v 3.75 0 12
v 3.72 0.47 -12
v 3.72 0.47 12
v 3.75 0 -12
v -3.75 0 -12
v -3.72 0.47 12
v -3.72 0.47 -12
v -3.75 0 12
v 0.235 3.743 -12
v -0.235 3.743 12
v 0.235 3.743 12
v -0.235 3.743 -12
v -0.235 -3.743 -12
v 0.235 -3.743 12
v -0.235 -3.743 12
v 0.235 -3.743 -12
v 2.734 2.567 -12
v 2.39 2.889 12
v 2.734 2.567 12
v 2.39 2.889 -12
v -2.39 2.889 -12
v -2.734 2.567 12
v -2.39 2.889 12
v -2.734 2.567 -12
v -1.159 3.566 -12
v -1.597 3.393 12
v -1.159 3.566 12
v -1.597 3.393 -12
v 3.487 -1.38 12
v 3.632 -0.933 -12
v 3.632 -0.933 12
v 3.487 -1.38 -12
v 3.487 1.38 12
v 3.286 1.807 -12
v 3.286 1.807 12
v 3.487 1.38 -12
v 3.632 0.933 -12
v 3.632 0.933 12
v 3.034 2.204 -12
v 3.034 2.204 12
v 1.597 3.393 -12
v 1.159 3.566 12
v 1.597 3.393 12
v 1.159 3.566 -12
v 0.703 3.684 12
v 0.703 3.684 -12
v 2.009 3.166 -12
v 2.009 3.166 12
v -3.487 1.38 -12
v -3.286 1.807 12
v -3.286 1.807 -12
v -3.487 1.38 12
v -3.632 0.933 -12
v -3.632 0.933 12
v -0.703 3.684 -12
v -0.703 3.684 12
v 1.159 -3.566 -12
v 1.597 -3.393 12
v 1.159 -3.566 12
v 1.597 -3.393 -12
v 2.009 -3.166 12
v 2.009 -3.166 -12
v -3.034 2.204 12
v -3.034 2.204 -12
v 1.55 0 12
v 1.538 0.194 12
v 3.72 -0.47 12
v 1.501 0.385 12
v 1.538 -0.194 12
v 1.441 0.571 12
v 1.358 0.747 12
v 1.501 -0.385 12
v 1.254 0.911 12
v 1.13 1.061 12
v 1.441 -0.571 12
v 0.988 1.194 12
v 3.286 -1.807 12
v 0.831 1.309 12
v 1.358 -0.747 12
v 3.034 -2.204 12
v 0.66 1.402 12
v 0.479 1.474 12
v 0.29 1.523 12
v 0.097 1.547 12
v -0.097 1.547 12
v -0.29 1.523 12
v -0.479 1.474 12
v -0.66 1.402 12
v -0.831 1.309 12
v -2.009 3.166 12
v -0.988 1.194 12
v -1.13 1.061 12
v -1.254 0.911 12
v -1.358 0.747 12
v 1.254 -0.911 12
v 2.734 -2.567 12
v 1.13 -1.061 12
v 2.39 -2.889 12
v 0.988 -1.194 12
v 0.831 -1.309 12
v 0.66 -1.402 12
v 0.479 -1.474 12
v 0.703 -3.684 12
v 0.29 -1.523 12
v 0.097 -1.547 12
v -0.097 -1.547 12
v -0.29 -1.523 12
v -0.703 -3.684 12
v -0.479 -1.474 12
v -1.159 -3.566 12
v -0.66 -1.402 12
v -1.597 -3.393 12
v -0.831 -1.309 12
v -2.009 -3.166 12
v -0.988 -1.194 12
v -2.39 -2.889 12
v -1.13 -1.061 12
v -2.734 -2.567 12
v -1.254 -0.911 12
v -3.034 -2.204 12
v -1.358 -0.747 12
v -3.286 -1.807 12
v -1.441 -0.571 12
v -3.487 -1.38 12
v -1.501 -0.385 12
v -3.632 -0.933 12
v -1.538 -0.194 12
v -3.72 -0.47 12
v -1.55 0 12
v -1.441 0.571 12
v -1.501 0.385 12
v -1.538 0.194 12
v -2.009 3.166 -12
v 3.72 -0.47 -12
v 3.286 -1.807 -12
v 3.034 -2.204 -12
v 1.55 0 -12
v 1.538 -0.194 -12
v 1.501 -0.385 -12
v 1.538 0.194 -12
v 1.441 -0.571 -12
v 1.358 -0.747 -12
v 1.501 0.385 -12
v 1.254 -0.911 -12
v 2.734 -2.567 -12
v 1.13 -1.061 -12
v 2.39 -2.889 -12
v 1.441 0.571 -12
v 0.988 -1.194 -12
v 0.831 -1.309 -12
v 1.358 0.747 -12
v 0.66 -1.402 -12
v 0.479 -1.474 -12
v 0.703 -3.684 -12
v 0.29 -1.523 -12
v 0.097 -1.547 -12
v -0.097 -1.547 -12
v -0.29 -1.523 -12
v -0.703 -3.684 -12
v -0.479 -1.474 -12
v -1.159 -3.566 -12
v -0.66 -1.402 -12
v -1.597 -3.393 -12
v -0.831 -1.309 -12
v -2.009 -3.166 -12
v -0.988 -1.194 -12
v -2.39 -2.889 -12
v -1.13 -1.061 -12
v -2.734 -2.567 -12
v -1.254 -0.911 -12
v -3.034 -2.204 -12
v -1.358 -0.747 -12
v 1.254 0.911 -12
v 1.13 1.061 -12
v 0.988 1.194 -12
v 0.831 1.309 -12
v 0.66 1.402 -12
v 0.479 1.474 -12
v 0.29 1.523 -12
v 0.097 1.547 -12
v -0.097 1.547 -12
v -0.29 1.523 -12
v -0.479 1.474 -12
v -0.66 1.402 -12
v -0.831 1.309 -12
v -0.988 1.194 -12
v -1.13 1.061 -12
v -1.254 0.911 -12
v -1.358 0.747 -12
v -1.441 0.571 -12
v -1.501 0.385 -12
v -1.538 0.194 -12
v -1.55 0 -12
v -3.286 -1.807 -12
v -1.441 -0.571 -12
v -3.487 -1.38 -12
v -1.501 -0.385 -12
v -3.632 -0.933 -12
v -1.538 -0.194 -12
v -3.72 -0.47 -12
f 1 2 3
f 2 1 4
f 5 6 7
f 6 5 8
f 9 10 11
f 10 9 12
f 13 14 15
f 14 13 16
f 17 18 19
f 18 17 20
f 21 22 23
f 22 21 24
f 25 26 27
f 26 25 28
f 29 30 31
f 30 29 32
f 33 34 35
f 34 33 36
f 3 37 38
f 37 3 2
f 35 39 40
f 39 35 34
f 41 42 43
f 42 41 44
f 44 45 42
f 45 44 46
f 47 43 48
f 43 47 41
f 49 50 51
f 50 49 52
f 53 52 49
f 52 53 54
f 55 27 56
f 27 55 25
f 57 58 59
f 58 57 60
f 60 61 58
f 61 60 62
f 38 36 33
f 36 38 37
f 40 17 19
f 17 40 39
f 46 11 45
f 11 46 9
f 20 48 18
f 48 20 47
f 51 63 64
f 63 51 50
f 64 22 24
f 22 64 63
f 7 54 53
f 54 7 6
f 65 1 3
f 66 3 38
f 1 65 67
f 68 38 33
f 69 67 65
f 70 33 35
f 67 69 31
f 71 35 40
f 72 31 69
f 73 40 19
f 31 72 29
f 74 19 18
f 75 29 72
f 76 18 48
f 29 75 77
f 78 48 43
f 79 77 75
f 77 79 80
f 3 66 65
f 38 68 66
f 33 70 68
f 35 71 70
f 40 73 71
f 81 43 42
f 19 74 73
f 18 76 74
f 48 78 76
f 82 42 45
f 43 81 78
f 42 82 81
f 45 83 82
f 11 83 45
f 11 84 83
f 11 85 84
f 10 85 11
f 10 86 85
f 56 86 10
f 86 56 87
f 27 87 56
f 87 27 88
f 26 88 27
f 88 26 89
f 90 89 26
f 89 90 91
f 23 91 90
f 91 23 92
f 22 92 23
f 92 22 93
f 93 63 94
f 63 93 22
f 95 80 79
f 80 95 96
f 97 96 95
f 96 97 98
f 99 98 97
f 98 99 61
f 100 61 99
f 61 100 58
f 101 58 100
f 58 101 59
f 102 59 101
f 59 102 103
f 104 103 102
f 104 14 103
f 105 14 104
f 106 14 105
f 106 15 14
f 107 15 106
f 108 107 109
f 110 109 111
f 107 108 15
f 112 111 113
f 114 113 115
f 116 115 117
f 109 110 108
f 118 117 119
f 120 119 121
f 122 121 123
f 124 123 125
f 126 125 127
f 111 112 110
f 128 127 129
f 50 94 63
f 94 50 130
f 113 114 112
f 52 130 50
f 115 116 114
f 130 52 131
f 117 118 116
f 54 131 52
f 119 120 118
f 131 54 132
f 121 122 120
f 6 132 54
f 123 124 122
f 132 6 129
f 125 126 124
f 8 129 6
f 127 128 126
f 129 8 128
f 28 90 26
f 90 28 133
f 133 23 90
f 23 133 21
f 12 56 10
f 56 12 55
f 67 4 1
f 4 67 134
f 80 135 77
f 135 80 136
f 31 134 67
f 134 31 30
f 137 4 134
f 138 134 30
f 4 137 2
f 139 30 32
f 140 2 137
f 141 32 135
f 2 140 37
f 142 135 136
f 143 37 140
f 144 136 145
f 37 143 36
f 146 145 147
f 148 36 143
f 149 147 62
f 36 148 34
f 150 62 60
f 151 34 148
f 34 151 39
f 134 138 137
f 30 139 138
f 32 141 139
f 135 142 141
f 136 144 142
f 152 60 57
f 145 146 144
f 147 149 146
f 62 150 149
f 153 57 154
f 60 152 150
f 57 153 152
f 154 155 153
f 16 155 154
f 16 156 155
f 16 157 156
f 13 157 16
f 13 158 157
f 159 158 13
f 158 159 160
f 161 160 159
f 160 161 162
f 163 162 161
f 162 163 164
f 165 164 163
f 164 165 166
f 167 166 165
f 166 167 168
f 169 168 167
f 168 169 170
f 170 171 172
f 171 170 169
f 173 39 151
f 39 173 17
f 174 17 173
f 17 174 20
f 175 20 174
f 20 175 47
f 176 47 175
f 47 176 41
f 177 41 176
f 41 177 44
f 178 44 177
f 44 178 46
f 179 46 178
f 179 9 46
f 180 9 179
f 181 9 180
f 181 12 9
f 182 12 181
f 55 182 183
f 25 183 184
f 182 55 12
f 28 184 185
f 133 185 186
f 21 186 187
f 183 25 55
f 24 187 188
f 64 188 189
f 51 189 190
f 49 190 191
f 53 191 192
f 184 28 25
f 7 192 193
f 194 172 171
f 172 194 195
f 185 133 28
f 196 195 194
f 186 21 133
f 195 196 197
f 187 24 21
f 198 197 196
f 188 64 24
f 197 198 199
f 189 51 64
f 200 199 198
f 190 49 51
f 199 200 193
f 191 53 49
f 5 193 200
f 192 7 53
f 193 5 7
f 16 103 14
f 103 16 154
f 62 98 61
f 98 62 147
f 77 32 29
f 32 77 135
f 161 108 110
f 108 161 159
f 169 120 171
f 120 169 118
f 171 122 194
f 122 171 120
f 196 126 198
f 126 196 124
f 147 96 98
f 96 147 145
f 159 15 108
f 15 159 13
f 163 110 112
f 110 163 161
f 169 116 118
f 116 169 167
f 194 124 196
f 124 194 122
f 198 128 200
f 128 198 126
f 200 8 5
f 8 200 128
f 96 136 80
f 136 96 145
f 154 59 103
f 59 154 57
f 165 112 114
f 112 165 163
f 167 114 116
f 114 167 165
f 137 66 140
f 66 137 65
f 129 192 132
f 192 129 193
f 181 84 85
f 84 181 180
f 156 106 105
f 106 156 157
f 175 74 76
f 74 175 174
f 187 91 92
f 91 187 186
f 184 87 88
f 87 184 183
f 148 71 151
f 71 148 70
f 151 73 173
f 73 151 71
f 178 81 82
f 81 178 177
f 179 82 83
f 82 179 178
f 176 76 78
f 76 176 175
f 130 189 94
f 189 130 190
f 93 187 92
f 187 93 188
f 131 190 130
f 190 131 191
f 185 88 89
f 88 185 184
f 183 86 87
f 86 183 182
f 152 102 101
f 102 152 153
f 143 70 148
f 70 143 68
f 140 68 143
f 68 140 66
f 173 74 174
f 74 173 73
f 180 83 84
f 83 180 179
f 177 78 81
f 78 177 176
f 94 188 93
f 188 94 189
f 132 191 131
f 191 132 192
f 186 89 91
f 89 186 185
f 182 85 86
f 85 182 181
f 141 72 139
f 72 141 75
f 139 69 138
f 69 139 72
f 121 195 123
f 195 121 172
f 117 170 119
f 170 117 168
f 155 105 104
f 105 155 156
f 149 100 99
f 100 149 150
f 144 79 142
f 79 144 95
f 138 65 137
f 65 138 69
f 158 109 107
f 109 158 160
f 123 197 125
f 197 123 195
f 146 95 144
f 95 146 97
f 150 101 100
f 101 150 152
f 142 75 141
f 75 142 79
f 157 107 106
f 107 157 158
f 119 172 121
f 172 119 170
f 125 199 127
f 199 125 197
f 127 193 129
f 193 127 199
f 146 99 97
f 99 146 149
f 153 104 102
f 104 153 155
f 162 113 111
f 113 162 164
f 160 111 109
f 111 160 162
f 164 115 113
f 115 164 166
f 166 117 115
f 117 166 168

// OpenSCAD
$fn = 50;


difference() {
	union() {
		translate(v = [0, 0, -12.0000000000]) {
			cylinder(h = 24, r = 3.7500000000);
		}
	}
	union() {
		translate(v = [0, 0, -100.0000000000]) {
			cylinder(h = 200, r = 1.5500000000);
		}
	}
}
